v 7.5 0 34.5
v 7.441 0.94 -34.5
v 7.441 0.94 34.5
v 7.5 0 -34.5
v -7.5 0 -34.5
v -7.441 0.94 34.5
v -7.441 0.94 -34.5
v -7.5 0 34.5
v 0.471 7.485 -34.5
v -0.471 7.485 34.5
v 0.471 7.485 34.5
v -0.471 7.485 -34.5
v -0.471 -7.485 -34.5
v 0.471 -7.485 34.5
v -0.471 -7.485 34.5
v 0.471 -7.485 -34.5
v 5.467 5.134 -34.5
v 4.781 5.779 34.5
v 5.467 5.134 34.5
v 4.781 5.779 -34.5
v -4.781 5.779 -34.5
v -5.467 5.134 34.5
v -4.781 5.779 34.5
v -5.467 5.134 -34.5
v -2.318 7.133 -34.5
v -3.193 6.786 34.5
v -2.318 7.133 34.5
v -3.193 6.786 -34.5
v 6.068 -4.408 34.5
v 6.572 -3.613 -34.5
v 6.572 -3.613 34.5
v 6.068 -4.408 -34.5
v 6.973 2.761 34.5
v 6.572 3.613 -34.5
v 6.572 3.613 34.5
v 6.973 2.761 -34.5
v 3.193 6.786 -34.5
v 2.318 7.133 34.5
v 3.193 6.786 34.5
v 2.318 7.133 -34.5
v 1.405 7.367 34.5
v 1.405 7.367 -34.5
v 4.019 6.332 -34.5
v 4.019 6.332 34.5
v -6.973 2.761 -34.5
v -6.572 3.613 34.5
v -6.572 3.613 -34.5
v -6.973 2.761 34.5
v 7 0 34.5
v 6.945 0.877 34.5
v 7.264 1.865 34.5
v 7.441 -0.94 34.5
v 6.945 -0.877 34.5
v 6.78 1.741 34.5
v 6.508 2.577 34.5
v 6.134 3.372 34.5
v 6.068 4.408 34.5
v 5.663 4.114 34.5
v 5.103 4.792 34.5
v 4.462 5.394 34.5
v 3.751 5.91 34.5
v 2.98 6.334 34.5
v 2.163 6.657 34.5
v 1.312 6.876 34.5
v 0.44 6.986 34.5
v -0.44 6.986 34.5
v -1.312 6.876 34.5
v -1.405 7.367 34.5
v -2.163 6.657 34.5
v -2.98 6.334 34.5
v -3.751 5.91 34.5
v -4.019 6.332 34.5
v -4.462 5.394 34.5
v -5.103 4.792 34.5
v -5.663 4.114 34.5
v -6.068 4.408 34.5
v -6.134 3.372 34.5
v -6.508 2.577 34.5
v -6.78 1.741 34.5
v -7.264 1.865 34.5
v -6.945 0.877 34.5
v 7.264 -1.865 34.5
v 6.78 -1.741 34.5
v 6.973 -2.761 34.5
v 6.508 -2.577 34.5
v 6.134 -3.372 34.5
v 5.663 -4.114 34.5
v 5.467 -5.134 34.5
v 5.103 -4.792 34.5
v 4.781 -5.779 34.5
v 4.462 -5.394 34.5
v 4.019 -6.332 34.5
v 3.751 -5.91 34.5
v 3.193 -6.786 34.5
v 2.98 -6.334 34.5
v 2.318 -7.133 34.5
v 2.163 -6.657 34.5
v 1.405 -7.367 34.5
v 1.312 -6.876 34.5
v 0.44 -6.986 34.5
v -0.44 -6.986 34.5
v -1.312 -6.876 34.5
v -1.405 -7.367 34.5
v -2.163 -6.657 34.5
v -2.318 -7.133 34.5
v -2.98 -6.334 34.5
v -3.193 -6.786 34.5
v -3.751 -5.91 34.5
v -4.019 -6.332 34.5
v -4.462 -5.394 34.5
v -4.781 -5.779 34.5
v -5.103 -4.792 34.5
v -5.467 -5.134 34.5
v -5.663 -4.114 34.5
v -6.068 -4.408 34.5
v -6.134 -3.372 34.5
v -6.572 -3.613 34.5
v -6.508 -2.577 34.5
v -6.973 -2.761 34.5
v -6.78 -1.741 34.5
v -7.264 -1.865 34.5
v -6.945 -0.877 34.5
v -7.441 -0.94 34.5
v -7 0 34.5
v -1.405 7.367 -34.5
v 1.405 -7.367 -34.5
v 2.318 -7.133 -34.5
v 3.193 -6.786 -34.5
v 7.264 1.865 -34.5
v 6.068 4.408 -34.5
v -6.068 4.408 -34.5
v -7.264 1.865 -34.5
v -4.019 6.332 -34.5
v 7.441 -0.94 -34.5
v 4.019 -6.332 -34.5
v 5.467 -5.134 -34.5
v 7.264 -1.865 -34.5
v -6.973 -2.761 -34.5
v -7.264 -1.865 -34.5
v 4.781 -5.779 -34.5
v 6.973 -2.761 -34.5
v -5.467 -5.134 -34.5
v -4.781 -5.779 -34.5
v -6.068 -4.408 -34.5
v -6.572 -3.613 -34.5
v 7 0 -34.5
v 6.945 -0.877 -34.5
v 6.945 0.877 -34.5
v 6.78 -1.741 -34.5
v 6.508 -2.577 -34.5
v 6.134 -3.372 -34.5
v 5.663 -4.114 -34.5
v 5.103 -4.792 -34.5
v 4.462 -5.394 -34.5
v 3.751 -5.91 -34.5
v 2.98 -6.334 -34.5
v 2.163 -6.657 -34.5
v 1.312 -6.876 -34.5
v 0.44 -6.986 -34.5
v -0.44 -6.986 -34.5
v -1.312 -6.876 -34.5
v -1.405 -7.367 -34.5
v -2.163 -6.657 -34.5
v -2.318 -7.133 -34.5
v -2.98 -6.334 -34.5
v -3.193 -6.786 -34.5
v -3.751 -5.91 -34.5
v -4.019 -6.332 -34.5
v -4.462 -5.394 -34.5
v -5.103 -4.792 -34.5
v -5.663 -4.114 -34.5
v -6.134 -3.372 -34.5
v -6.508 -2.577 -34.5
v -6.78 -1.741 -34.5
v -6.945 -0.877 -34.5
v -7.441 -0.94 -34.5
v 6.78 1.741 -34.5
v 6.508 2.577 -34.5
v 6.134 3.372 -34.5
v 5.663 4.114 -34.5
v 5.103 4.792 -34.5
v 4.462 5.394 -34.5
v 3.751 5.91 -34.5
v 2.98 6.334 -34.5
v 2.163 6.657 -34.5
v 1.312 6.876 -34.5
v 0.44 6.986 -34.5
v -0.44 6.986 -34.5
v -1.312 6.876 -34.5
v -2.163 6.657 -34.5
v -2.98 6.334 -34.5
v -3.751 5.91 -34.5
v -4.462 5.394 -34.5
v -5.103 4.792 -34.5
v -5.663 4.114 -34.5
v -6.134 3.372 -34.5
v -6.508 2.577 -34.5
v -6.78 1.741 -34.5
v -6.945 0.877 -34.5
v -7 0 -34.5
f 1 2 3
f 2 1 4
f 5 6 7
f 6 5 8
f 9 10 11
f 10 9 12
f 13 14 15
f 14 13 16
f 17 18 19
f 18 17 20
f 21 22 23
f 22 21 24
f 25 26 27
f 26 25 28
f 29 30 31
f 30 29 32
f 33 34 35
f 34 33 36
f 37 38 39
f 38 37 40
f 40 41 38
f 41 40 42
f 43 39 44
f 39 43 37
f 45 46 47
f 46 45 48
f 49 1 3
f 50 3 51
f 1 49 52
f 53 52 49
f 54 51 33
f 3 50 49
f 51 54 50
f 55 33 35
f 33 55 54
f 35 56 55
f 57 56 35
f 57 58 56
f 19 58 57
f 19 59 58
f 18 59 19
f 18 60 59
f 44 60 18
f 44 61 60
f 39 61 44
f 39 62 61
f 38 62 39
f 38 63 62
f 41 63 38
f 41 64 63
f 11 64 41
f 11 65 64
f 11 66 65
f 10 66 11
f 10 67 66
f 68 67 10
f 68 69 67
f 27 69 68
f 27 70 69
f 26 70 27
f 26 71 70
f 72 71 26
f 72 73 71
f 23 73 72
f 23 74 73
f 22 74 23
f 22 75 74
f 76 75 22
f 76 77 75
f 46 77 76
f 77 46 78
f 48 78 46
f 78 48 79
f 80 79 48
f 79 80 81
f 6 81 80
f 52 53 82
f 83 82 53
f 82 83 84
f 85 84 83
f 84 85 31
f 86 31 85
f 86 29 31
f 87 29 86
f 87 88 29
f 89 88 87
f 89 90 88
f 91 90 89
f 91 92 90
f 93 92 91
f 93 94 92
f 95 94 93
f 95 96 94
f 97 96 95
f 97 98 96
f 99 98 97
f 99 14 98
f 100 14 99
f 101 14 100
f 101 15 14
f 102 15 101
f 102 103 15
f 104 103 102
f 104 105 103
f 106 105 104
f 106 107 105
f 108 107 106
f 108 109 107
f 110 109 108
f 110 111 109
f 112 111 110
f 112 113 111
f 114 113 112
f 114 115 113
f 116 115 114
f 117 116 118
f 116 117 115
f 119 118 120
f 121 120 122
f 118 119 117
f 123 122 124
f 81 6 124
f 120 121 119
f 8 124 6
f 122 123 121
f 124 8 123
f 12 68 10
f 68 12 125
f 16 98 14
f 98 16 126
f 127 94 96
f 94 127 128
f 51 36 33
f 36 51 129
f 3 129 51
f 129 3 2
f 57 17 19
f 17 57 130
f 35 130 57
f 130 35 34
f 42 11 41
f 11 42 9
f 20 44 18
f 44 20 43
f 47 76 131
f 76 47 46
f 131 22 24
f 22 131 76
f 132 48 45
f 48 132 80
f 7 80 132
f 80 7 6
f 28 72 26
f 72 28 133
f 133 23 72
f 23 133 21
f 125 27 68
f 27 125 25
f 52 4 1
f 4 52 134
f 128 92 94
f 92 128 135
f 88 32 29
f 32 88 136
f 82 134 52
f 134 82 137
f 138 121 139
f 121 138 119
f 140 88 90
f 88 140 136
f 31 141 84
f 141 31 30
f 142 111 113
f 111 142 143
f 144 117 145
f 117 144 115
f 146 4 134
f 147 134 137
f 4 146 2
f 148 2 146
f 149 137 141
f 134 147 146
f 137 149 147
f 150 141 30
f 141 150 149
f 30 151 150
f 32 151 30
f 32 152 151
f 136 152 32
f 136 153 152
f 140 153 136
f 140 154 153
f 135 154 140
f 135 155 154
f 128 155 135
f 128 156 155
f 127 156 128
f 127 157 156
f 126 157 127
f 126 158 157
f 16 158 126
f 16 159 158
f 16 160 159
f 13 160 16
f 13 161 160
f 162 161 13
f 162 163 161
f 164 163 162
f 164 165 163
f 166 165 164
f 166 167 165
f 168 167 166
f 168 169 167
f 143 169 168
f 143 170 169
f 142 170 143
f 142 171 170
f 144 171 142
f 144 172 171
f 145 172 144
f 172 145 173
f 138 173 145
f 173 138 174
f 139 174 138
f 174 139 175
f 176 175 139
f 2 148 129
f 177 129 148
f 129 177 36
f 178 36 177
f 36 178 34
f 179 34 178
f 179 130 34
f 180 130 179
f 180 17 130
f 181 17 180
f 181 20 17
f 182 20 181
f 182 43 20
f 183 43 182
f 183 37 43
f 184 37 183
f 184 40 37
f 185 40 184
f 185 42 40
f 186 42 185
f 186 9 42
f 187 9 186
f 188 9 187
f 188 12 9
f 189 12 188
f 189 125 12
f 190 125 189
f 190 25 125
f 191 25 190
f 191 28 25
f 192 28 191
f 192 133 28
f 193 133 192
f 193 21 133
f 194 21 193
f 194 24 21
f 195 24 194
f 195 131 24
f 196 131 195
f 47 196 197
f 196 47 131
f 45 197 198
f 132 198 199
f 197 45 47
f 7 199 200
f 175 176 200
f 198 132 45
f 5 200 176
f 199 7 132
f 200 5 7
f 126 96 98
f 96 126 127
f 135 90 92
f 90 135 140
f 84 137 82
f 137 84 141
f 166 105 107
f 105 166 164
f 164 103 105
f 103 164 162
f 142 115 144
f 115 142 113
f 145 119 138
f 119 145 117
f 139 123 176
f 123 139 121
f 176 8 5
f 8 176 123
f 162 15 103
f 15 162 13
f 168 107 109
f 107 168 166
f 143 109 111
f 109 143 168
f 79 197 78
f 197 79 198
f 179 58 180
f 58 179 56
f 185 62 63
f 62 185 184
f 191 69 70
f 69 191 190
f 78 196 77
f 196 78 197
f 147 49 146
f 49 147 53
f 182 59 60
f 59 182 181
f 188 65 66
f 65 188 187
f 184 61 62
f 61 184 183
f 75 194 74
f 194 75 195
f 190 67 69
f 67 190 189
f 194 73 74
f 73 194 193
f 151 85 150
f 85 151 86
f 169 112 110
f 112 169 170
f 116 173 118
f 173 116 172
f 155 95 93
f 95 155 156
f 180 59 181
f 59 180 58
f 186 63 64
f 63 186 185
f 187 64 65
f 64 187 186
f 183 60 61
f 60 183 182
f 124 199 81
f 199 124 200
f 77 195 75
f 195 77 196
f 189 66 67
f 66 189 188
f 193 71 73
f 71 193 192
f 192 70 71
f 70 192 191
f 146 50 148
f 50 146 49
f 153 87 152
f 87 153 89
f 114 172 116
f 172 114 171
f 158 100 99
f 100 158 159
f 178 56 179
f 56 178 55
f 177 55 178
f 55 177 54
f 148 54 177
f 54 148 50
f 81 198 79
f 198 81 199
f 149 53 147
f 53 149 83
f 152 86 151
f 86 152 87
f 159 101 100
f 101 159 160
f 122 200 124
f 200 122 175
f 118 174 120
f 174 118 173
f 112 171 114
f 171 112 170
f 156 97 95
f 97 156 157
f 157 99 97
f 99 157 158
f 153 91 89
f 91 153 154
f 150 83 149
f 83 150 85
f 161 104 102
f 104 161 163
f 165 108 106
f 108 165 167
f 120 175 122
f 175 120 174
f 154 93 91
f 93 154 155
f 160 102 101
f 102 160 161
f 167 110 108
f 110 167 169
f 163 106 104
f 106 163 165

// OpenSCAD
$fn = 50;


difference() {
	union() {
		translate(v = [0, 0, -34.5000000000]) {
			cylinder(h = 69, r = 7.5000000000);
		}
	}
	union() {
		translate(v = [0, 0, -100.0000000000]) {
			cylinder(h = 200, r = 7);
		}
	}
}
